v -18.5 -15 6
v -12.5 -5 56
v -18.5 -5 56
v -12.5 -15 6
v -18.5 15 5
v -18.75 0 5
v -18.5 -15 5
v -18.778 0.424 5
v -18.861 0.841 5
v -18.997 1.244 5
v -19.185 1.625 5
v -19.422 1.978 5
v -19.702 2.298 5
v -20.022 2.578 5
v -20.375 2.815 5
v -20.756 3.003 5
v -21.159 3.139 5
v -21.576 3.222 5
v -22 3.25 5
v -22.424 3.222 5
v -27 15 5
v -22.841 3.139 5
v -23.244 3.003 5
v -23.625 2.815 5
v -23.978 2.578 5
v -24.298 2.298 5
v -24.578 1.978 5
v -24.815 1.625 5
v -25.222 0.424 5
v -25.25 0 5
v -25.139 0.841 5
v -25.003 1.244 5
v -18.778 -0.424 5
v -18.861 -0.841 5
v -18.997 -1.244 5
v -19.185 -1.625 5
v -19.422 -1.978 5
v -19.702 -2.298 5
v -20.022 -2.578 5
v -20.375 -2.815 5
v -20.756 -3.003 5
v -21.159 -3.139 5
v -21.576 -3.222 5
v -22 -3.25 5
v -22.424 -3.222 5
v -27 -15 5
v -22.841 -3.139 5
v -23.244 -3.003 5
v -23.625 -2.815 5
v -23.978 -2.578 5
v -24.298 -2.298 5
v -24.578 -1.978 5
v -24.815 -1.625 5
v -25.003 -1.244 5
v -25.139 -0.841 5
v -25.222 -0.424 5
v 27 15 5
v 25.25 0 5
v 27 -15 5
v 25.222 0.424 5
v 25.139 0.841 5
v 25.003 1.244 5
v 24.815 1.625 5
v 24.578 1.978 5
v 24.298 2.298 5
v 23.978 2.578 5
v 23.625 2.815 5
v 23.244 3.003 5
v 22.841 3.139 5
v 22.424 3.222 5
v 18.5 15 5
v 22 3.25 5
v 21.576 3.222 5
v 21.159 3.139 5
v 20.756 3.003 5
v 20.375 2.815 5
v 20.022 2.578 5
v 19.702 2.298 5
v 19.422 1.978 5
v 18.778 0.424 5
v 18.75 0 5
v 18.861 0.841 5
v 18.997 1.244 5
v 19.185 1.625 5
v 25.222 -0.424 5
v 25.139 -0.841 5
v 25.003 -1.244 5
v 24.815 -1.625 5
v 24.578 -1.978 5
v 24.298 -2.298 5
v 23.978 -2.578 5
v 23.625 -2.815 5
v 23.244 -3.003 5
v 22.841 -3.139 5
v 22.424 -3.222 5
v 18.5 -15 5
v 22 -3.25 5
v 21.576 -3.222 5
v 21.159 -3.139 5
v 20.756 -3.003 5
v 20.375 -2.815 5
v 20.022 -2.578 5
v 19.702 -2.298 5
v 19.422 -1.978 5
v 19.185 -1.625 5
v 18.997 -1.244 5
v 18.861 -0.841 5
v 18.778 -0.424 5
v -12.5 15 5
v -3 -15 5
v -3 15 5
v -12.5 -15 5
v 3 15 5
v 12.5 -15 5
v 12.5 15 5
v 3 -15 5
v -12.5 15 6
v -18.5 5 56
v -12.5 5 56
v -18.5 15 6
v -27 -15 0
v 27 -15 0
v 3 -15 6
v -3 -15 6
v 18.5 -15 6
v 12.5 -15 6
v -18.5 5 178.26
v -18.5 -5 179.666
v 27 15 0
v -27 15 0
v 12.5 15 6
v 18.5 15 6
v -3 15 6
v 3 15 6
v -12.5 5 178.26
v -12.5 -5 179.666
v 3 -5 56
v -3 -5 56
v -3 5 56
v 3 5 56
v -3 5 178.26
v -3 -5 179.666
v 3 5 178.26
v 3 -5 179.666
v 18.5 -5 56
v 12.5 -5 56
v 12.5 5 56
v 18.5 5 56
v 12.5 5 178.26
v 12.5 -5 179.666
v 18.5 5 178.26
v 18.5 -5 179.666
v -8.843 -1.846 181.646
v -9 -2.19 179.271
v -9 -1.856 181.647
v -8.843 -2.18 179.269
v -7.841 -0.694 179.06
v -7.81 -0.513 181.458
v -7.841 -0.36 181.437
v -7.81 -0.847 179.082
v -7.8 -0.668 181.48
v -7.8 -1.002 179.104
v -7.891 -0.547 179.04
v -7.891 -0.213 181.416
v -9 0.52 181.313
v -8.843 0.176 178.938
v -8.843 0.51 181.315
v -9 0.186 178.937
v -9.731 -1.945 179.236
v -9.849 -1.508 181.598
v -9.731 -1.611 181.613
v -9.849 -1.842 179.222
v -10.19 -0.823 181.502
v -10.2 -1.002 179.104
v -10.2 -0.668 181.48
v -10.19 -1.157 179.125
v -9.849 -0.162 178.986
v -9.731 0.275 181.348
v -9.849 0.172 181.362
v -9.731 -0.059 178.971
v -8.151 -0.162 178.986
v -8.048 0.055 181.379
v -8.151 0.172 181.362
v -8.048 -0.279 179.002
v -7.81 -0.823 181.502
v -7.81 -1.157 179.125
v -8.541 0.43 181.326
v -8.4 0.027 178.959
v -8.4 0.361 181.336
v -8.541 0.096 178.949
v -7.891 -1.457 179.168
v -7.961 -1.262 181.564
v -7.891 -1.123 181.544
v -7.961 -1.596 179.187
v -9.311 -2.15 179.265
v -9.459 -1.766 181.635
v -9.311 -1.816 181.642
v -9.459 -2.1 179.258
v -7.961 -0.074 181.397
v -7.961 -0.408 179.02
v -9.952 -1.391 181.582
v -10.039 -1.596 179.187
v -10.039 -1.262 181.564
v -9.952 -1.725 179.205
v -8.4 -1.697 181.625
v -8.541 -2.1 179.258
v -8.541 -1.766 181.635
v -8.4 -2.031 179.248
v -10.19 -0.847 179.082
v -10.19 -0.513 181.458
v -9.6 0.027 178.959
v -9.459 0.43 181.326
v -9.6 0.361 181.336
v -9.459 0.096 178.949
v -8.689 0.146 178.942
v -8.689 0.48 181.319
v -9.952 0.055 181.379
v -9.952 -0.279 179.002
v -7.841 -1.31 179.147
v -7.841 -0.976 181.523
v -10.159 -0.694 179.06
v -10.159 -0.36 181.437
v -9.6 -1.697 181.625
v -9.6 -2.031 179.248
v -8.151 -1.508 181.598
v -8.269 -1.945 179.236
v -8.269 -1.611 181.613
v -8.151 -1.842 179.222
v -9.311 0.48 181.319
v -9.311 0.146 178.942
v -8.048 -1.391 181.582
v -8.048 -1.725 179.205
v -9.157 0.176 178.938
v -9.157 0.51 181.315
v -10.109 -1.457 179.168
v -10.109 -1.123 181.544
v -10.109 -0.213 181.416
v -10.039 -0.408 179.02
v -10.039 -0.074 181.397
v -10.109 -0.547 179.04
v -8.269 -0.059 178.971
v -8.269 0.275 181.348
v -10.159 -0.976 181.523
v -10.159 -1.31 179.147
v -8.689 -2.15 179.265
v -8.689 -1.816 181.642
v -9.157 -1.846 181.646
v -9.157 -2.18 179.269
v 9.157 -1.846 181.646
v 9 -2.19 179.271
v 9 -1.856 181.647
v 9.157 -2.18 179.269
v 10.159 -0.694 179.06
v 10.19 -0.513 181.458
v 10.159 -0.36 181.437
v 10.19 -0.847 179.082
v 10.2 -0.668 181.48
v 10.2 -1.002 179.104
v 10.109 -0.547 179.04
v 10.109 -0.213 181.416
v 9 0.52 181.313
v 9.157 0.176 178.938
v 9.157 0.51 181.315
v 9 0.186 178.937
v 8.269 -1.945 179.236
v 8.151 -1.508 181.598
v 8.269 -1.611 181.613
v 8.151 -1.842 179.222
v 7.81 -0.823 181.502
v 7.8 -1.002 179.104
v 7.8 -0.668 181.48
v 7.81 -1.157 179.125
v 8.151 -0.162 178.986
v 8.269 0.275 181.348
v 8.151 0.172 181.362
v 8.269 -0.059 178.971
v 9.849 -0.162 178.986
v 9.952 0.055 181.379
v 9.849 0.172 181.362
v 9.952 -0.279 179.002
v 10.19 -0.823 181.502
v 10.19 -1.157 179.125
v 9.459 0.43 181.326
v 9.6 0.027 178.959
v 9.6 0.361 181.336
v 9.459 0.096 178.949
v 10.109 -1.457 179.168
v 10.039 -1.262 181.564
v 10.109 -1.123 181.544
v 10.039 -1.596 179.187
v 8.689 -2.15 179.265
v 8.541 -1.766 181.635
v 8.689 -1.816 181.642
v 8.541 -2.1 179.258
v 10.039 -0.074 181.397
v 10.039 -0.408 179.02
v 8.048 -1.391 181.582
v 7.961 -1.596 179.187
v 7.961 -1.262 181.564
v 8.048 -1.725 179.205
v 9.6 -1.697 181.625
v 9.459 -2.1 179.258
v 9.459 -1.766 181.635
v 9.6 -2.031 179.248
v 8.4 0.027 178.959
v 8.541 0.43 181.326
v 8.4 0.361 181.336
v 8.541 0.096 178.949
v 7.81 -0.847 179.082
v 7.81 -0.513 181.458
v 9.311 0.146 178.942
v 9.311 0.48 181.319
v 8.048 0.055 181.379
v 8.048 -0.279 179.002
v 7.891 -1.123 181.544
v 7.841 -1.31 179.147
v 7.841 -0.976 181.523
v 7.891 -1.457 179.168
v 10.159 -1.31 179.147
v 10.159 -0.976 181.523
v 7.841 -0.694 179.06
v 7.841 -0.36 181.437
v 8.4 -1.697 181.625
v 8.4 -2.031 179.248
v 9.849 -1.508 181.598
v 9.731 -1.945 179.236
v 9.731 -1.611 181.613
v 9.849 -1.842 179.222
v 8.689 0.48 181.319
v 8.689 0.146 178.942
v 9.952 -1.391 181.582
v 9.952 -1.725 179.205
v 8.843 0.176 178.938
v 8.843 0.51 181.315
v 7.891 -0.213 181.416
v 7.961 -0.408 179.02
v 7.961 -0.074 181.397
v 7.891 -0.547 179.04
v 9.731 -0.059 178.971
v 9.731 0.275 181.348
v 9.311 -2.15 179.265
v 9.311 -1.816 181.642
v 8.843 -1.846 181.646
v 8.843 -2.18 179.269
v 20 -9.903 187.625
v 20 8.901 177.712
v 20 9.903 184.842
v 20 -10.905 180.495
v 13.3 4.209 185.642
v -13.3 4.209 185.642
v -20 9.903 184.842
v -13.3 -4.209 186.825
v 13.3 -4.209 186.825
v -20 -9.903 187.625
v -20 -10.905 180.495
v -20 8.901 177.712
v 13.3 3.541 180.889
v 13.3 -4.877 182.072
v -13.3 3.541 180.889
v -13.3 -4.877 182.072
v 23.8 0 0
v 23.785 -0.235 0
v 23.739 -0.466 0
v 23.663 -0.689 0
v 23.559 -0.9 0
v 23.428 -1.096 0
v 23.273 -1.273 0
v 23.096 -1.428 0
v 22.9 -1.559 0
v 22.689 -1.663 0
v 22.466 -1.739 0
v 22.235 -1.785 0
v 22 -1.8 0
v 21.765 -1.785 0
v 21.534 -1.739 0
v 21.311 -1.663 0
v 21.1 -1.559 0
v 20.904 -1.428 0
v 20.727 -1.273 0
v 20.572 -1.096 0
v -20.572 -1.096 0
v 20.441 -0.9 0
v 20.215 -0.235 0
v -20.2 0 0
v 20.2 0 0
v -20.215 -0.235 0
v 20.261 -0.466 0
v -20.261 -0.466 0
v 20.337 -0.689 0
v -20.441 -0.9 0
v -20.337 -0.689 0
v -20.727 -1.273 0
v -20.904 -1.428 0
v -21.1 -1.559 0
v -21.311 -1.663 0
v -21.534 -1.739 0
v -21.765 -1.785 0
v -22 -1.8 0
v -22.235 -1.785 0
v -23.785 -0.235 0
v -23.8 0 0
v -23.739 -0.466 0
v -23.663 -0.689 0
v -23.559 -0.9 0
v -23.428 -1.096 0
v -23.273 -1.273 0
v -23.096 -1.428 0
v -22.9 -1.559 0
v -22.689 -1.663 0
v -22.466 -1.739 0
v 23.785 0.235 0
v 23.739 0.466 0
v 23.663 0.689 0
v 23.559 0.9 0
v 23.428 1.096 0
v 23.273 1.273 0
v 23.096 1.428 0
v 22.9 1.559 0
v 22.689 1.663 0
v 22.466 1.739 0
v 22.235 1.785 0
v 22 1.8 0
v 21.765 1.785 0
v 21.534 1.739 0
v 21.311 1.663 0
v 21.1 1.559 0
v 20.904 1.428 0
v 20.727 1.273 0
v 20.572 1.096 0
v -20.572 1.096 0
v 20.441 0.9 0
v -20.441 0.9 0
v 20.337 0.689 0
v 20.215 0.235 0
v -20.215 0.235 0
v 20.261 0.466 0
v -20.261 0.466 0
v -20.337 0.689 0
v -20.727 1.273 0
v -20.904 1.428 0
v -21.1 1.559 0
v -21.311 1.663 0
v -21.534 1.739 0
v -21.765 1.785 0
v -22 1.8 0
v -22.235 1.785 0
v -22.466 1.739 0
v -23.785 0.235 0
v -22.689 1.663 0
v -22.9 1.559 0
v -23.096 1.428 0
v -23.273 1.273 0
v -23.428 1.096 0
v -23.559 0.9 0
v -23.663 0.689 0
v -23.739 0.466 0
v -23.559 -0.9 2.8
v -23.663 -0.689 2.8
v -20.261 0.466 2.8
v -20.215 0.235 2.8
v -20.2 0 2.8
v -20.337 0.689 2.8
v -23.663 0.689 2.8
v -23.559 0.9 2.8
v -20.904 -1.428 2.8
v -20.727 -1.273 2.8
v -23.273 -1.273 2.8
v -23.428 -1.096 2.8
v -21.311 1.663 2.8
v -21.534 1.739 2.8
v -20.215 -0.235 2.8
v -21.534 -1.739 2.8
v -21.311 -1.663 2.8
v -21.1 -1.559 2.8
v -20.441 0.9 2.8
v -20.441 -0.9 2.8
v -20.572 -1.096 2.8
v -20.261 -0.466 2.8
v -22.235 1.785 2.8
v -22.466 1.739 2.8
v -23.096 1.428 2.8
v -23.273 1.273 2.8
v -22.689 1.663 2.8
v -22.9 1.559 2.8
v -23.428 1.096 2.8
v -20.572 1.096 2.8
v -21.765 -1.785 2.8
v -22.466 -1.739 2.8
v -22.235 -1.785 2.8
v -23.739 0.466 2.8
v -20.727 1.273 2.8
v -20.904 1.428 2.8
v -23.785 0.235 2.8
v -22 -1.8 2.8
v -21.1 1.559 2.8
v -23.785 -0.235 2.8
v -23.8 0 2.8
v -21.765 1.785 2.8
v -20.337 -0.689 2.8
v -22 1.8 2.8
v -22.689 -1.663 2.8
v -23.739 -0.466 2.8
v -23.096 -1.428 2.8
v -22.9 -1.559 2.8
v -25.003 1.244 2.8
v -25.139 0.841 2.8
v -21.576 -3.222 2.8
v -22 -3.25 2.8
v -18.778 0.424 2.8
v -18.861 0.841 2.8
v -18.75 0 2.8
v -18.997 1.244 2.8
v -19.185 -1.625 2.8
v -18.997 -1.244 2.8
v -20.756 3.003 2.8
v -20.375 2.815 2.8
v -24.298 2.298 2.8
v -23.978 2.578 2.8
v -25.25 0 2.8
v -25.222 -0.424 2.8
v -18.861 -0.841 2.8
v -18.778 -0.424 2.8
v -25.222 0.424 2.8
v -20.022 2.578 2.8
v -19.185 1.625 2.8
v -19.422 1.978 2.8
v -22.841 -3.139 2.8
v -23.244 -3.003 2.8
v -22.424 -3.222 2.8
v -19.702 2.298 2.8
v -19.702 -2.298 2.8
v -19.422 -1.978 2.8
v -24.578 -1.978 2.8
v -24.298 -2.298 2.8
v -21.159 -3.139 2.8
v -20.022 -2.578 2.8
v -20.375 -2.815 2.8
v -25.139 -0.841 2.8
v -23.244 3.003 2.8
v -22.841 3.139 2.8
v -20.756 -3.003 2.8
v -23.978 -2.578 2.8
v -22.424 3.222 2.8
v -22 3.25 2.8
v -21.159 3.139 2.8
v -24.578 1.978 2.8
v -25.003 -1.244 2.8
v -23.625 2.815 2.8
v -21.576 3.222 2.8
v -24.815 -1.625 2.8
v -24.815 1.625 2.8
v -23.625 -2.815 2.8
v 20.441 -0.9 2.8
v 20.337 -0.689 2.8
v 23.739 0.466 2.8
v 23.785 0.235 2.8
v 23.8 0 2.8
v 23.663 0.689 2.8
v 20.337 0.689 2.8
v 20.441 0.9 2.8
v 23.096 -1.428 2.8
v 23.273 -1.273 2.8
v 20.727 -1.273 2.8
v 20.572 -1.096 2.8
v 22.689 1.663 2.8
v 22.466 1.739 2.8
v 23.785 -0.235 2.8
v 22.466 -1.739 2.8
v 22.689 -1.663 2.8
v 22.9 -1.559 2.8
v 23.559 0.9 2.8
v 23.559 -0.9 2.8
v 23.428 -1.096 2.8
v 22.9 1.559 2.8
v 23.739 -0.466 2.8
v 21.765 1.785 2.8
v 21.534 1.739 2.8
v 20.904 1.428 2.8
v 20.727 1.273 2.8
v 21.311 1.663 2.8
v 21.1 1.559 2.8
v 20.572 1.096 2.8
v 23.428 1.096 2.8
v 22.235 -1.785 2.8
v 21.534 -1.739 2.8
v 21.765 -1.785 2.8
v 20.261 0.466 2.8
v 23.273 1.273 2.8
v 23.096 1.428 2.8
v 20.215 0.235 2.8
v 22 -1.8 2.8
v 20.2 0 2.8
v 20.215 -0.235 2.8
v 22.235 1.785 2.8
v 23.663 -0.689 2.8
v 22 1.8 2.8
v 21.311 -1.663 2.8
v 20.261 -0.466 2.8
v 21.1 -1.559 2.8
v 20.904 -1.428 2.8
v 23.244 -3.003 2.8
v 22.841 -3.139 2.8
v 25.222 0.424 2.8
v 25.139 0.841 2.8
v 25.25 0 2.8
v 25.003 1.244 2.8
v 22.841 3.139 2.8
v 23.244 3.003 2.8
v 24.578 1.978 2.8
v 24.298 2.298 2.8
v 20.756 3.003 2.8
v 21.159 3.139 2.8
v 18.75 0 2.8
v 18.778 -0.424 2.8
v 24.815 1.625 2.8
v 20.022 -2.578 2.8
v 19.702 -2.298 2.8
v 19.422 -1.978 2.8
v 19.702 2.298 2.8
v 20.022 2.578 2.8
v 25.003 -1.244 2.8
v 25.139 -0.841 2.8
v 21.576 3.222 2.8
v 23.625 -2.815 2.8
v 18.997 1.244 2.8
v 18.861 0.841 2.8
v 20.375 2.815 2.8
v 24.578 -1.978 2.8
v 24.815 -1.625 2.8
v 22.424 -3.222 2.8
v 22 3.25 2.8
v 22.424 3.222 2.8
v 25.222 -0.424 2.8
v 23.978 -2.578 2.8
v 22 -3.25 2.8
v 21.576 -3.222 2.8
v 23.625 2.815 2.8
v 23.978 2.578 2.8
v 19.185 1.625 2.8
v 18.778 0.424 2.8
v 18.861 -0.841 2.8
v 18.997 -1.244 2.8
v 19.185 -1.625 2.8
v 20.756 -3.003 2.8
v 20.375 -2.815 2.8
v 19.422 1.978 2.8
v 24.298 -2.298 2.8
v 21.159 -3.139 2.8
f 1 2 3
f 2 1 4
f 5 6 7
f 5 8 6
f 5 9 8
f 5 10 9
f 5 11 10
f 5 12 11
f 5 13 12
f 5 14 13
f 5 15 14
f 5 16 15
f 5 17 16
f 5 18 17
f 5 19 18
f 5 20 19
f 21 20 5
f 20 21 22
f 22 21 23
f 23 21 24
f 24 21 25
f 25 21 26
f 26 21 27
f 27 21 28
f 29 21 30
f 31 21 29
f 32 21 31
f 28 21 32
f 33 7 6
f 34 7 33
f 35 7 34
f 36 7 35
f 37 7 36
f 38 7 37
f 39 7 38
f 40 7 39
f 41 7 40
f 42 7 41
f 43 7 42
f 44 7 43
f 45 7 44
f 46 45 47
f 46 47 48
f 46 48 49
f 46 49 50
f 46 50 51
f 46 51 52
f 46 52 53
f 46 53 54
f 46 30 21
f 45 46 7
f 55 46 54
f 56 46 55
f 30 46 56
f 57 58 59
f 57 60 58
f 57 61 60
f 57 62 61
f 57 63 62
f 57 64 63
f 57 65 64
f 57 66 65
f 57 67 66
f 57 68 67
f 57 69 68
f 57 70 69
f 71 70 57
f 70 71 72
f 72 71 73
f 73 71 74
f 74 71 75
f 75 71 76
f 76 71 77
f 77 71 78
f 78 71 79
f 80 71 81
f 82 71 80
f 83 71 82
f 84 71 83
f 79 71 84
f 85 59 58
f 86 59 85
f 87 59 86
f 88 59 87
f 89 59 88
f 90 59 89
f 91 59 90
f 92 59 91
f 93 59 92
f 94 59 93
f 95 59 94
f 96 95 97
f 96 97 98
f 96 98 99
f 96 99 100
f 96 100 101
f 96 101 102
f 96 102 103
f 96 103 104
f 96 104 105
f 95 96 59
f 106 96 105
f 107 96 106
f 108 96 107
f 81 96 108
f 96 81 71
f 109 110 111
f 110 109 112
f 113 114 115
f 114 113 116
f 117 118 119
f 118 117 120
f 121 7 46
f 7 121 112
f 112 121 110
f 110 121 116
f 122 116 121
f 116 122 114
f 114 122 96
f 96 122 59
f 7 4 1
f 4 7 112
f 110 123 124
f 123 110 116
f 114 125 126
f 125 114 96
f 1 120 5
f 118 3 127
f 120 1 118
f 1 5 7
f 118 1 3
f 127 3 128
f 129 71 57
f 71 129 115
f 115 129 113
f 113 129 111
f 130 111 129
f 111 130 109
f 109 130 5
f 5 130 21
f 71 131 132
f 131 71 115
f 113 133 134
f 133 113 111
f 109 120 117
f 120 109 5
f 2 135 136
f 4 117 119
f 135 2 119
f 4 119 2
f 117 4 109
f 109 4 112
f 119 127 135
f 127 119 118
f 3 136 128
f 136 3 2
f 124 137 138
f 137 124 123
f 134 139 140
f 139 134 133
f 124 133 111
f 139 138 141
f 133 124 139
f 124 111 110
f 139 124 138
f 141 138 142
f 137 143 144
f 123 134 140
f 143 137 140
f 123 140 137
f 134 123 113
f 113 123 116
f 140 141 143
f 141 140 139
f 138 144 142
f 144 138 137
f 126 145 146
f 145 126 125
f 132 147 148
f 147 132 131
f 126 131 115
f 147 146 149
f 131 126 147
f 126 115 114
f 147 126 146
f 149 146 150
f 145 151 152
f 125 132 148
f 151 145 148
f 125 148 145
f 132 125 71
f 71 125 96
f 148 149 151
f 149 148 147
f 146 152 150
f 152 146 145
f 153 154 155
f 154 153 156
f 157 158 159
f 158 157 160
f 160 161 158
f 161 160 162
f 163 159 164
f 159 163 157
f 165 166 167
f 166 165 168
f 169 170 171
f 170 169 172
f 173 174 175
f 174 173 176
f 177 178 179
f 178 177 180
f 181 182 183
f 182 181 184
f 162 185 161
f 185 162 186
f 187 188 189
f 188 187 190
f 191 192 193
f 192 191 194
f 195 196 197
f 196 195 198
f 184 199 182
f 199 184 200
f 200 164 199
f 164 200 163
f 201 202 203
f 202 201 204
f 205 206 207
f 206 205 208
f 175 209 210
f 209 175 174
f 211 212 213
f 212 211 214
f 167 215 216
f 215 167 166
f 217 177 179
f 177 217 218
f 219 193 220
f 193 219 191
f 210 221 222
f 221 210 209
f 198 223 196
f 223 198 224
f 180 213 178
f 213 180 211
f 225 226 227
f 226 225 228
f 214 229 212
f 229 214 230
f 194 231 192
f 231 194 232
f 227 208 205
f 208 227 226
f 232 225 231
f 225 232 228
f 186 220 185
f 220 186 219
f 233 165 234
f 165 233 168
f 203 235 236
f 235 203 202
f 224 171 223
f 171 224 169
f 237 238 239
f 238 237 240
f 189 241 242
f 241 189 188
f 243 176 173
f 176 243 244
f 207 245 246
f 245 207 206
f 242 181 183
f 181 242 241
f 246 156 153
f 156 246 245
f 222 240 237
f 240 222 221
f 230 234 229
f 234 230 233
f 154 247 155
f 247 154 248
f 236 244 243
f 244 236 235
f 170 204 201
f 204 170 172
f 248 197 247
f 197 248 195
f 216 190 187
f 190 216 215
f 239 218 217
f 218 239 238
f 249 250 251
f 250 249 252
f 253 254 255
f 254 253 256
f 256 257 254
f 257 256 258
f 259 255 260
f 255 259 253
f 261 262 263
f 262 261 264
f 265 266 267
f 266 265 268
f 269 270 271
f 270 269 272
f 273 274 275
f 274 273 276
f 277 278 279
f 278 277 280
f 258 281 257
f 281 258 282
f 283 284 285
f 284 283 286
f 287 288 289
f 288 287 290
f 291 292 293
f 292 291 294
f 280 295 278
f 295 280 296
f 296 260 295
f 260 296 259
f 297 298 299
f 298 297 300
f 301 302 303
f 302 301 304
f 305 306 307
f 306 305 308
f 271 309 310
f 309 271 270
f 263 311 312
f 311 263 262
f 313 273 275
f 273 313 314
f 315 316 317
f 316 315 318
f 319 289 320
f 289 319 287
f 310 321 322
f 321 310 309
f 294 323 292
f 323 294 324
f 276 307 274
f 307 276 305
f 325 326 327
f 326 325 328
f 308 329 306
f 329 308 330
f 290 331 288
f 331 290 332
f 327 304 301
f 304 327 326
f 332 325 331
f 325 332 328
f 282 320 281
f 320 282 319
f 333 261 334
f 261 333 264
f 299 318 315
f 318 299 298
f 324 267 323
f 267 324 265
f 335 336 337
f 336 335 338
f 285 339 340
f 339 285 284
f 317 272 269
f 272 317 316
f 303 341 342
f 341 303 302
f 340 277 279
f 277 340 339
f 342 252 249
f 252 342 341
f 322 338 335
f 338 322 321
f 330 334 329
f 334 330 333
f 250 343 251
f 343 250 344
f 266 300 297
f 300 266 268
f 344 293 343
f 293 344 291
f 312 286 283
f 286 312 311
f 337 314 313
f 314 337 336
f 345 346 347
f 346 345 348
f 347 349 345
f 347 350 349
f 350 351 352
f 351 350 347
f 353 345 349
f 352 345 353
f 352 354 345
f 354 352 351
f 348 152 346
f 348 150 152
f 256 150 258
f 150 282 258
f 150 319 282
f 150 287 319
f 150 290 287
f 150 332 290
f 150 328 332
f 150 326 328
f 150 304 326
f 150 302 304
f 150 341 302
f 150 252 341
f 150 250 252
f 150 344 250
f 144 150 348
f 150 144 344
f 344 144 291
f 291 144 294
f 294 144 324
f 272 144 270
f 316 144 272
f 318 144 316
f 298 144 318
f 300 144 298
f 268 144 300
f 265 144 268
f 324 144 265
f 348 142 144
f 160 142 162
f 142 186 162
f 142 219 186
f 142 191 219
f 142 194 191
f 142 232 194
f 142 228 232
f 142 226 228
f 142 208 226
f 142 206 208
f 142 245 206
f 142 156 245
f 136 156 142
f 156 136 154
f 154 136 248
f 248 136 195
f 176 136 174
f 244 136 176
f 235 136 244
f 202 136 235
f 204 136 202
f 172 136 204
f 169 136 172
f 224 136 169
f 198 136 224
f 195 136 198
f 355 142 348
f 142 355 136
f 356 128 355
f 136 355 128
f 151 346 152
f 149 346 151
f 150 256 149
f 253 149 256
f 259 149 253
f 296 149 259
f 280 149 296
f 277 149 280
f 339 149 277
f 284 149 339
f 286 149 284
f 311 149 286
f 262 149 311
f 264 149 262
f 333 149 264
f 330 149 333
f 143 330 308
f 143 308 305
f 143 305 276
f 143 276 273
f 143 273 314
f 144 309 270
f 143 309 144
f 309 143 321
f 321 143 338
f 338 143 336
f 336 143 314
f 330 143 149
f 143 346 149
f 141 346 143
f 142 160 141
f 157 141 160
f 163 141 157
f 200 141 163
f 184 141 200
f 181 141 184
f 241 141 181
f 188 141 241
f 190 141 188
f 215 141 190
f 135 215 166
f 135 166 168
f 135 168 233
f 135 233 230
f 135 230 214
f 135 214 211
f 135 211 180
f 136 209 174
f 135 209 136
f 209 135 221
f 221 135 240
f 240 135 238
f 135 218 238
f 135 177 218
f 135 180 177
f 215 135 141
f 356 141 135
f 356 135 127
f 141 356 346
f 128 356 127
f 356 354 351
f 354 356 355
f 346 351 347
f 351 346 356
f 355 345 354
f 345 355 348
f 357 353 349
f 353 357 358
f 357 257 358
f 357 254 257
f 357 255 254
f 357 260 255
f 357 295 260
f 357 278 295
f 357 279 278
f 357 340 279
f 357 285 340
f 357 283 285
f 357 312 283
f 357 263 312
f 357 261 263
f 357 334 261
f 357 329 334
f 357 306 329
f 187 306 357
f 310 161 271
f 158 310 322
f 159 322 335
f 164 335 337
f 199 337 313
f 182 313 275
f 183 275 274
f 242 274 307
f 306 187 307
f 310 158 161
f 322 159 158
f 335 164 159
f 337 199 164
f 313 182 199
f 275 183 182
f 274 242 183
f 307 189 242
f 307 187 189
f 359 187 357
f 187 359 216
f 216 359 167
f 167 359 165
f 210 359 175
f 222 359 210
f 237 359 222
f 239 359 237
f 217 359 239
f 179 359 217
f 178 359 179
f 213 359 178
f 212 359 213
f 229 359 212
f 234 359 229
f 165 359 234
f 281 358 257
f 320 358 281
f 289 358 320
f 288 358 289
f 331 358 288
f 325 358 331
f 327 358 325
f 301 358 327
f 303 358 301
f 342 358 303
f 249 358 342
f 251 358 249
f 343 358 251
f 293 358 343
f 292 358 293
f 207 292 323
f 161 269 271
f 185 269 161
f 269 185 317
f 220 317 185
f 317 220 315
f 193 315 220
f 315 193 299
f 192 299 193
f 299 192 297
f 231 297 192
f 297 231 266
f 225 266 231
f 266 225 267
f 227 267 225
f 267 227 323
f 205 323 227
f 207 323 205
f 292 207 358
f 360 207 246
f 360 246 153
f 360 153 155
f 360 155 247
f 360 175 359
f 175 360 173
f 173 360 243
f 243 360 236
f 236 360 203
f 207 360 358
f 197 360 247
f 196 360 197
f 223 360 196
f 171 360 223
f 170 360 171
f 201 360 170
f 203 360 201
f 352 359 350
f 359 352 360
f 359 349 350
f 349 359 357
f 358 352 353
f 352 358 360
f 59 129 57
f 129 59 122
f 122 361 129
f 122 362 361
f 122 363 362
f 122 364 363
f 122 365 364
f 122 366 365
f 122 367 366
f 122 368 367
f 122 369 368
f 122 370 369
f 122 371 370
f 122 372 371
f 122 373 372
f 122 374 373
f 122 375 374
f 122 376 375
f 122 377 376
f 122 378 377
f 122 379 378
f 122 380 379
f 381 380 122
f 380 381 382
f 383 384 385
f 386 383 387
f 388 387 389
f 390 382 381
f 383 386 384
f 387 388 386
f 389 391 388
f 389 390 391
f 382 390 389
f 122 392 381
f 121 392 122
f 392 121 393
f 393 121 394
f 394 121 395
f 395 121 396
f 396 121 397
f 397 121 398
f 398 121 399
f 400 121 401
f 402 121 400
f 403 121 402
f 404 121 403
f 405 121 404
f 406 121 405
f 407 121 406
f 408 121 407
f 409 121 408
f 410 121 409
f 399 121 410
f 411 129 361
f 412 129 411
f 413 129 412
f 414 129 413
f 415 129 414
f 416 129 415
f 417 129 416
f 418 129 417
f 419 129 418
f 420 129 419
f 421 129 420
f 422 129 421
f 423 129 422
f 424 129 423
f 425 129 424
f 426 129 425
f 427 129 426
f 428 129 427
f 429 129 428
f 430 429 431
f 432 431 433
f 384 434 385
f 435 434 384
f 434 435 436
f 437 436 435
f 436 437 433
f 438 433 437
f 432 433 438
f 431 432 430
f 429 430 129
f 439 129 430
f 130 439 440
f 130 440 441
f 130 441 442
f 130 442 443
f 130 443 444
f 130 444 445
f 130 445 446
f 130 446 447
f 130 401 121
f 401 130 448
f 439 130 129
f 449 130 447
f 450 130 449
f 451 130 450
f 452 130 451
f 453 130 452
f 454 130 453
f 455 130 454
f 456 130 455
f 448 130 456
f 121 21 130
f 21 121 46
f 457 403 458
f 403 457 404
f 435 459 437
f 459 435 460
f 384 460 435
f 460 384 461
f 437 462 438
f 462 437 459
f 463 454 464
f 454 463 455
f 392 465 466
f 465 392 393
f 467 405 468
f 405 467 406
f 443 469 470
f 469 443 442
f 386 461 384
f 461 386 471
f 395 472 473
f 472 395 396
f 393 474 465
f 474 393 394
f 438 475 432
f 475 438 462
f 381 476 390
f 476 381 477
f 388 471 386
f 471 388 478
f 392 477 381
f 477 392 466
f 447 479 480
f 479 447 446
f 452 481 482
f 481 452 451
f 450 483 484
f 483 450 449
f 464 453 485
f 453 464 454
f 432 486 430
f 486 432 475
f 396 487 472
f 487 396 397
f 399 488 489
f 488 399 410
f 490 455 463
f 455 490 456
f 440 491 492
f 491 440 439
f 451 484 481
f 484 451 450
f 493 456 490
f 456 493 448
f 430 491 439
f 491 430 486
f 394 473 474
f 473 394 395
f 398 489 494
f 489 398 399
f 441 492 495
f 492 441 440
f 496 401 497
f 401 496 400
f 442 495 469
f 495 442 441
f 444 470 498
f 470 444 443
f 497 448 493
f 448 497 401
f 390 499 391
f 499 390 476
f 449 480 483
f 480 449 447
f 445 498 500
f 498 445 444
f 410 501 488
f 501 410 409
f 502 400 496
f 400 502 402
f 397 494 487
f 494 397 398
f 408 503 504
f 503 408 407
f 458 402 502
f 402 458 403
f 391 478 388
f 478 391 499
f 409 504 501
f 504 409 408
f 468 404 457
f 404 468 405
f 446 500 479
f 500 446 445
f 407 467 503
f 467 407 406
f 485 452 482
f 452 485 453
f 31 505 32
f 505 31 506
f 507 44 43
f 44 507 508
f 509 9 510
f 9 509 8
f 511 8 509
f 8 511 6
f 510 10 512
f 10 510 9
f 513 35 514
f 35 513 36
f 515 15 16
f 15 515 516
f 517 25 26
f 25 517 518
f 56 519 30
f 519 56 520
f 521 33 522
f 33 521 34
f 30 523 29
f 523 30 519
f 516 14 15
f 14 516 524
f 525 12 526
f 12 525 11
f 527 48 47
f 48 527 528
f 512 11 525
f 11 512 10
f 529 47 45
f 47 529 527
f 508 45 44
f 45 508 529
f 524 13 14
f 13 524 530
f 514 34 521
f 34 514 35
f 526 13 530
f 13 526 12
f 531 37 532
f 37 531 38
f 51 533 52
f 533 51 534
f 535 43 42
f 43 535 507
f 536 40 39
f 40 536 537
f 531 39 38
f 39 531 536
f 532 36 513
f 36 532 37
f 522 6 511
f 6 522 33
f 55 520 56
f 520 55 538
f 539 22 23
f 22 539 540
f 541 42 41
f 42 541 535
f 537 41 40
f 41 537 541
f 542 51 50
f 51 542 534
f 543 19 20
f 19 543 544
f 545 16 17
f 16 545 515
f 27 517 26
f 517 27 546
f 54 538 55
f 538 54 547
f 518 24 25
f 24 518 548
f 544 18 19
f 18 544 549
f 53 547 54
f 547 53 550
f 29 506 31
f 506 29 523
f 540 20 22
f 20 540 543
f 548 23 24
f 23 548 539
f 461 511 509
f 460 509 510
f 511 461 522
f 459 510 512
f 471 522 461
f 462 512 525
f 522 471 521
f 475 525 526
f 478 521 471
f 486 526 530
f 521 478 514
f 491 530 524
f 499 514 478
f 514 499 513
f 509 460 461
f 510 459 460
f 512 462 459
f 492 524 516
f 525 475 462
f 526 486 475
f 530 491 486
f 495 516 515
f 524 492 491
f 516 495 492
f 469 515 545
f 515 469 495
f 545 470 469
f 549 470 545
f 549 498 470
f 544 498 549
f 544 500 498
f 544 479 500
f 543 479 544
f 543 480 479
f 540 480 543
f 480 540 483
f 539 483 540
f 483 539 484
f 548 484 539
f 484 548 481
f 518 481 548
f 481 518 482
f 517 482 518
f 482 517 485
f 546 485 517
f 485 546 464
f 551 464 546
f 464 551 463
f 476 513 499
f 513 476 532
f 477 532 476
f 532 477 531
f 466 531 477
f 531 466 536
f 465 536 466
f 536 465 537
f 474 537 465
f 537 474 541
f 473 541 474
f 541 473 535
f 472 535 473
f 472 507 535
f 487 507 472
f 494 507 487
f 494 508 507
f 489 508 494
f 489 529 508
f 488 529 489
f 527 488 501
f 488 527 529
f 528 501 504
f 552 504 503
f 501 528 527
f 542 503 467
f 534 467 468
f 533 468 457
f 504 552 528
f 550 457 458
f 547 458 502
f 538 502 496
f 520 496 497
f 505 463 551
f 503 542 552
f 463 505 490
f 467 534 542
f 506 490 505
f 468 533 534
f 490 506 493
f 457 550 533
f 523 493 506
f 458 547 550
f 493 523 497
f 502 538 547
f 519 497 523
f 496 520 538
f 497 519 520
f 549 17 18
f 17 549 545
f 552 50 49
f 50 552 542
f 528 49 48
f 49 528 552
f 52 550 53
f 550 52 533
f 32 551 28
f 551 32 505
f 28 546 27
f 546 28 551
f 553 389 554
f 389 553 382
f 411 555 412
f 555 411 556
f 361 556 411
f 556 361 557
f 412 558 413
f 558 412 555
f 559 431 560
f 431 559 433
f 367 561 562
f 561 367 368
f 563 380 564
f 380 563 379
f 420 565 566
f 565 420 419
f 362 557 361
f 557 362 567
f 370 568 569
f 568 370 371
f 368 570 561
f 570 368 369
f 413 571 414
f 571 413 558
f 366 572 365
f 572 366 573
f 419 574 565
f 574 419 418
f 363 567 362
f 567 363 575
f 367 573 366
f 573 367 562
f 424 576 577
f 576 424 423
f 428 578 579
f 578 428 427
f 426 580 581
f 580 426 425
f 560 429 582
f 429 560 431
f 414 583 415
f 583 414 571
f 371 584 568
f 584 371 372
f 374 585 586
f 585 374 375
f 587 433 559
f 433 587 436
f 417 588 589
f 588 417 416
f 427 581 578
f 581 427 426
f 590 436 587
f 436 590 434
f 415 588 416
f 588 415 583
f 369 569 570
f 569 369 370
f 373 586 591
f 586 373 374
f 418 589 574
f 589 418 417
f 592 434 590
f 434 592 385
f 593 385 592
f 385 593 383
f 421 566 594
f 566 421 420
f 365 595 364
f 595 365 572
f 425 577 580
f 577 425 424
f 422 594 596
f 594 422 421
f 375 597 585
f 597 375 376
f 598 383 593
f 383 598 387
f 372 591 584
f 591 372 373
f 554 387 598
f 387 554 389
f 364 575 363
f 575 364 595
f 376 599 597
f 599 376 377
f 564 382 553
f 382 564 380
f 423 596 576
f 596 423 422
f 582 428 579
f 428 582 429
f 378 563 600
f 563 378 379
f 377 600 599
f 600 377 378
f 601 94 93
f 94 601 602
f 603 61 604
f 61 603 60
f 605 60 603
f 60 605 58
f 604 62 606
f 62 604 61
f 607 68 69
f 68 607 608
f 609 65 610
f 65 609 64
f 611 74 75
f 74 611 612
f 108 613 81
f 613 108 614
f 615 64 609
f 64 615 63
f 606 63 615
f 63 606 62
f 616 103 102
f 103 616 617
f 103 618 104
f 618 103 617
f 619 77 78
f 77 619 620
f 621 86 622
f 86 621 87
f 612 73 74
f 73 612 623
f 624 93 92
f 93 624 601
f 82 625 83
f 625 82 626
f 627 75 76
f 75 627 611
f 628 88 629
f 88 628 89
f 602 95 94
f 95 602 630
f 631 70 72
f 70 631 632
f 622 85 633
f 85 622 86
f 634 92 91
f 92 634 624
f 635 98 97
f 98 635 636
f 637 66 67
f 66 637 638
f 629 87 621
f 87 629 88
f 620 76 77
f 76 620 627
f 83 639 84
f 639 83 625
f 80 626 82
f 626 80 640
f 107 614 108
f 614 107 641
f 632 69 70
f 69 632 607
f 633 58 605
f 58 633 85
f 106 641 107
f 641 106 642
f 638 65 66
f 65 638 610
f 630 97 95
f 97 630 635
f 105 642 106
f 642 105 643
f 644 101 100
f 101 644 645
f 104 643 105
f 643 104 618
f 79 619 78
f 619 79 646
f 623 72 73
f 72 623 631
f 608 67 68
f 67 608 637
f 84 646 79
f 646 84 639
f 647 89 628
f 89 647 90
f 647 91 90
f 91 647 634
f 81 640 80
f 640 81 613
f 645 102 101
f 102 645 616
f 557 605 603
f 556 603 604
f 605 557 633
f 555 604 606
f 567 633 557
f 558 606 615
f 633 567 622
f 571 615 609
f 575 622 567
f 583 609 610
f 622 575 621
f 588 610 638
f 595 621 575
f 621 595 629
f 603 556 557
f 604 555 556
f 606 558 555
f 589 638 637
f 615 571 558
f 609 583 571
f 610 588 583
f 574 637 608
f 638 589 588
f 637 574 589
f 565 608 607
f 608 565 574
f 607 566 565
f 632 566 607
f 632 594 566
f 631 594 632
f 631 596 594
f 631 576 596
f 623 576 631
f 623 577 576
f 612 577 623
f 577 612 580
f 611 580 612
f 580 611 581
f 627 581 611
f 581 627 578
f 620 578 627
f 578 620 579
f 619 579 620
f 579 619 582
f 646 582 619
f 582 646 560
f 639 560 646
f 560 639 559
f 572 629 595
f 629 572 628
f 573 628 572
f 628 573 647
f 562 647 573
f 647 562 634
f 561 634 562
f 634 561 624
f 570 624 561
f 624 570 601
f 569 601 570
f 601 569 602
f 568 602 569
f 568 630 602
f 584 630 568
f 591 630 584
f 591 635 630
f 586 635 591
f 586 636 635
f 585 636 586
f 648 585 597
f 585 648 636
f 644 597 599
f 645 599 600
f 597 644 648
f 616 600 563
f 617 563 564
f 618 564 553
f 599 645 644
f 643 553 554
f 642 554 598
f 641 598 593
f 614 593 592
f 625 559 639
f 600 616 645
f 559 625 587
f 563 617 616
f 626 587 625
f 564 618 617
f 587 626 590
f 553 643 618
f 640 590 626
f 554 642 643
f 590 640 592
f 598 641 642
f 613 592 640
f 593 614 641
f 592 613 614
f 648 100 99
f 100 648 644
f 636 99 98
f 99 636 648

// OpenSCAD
$fn = 48;
part = "mount"; // [mount,fit_test]

// Placement: camera faces +Y and pitches down toward +Y.
target_optical_height = 300.0;
deck_height_above_floor = 90.0;
camera_axis_above_underside = 24.0;
pitch = 8.0;

// Base-removed Astra Pro interface, measured from the physical camera.
boss_length = 26.0;
boss_depth = 7.9;
boss_projection = 4.5;
boss_clearance = 0.3; // ponytail: tune only this if the printed pocket is tight.
m2_spacing = 18.0;
m2_clearance = 2.4;
interface_skin = 2.4;

// Physical between-wheel mounting pair.
m3_spacing = 44.0;
m3_clearance = 3.6;
m3_head_clearance = 6.5;
base_width = 54.0;
base_depth = 30.0;
base_thickness = 5.0;

saddle_width = 40.0;
saddle_depth = 20.0;
saddle_thickness = boss_projection + boss_clearance + interface_skin;
saddle_contact_z = target_optical_height
    - deck_height_above_floor
    - camera_axis_above_underside * cos(pitch);

leg_width = 6.0;
leg_depth = 10.0;
leg_centres = [-15.5, 0, 15.5];
leg_taper_height = 55.0;
leg_top_z = saddle_contact_z - saddle_thickness * cos(pitch) + 1.0;

assert(m3_spacing == 44.0);
assert(saddle_thickness - boss_projection - boss_clearance >= 2.0);
assert(saddle_width > boss_length + 2 * boss_clearance);
assert(saddle_depth > boss_depth + 2 * boss_clearance);

module saddle() {
    difference() {
        translate([-saddle_width / 2, -saddle_depth / 2, -saddle_thickness])
            cube([saddle_width, saddle_depth, saddle_thickness]);

        // The surrounding top face seats on the camera; the boss drops into this pocket.
        translate([
            -(boss_length + 2 * boss_clearance) / 2,
            -(boss_depth + 2 * boss_clearance) / 2,
            -(boss_projection + boss_clearance)
        ])
            cube([
                boss_length + 2 * boss_clearance,
                boss_depth + 2 * boss_clearance,
                boss_projection + boss_clearance + 0.1
            ]);

        for (x = [-m2_spacing / 2, m2_spacing / 2])
            translate([x, 0, -saddle_thickness - 0.1])
                cylinder(h=saddle_thickness + 0.3, d=m2_clearance);
    }
}

module mount() {
    difference() {
        union() {
            translate([-base_width / 2, -base_depth / 2, 0])
                cube([base_width, base_depth, base_thickness]);

            for (x = leg_centres) {
                hull() {
                    translate([x - leg_width / 2, -base_depth / 2, base_thickness])
                        cube([leg_width, base_depth, 1]);
                    translate([x - leg_width / 2, -leg_depth / 2, leg_taper_height])
                        cube([leg_width, leg_depth, 1]);
                }
                translate([x - leg_width / 2, -leg_depth / 2, leg_taper_height])
                    cube([leg_width, leg_depth, leg_top_z - leg_taper_height]);
            }

            translate([0, 0, saddle_contact_z])
                rotate([-pitch, 0, 0])
                    saddle();
        }

        for (x = [-m3_spacing / 2, m3_spacing / 2]) {
            translate([x, 0, -0.1])
                cylinder(h=base_thickness + 0.2, d=m3_clearance);
            translate([x, 0, base_thickness - 2.2])
                cylinder(h=2.3, d=m3_head_clearance);
        }
    }
}

if (part == "mount")
    mount();
else if (part == "fit_test")
    translate([0, 0, saddle_thickness]) saddle();
else
    assert(false, "part must be mount or fit_test");
